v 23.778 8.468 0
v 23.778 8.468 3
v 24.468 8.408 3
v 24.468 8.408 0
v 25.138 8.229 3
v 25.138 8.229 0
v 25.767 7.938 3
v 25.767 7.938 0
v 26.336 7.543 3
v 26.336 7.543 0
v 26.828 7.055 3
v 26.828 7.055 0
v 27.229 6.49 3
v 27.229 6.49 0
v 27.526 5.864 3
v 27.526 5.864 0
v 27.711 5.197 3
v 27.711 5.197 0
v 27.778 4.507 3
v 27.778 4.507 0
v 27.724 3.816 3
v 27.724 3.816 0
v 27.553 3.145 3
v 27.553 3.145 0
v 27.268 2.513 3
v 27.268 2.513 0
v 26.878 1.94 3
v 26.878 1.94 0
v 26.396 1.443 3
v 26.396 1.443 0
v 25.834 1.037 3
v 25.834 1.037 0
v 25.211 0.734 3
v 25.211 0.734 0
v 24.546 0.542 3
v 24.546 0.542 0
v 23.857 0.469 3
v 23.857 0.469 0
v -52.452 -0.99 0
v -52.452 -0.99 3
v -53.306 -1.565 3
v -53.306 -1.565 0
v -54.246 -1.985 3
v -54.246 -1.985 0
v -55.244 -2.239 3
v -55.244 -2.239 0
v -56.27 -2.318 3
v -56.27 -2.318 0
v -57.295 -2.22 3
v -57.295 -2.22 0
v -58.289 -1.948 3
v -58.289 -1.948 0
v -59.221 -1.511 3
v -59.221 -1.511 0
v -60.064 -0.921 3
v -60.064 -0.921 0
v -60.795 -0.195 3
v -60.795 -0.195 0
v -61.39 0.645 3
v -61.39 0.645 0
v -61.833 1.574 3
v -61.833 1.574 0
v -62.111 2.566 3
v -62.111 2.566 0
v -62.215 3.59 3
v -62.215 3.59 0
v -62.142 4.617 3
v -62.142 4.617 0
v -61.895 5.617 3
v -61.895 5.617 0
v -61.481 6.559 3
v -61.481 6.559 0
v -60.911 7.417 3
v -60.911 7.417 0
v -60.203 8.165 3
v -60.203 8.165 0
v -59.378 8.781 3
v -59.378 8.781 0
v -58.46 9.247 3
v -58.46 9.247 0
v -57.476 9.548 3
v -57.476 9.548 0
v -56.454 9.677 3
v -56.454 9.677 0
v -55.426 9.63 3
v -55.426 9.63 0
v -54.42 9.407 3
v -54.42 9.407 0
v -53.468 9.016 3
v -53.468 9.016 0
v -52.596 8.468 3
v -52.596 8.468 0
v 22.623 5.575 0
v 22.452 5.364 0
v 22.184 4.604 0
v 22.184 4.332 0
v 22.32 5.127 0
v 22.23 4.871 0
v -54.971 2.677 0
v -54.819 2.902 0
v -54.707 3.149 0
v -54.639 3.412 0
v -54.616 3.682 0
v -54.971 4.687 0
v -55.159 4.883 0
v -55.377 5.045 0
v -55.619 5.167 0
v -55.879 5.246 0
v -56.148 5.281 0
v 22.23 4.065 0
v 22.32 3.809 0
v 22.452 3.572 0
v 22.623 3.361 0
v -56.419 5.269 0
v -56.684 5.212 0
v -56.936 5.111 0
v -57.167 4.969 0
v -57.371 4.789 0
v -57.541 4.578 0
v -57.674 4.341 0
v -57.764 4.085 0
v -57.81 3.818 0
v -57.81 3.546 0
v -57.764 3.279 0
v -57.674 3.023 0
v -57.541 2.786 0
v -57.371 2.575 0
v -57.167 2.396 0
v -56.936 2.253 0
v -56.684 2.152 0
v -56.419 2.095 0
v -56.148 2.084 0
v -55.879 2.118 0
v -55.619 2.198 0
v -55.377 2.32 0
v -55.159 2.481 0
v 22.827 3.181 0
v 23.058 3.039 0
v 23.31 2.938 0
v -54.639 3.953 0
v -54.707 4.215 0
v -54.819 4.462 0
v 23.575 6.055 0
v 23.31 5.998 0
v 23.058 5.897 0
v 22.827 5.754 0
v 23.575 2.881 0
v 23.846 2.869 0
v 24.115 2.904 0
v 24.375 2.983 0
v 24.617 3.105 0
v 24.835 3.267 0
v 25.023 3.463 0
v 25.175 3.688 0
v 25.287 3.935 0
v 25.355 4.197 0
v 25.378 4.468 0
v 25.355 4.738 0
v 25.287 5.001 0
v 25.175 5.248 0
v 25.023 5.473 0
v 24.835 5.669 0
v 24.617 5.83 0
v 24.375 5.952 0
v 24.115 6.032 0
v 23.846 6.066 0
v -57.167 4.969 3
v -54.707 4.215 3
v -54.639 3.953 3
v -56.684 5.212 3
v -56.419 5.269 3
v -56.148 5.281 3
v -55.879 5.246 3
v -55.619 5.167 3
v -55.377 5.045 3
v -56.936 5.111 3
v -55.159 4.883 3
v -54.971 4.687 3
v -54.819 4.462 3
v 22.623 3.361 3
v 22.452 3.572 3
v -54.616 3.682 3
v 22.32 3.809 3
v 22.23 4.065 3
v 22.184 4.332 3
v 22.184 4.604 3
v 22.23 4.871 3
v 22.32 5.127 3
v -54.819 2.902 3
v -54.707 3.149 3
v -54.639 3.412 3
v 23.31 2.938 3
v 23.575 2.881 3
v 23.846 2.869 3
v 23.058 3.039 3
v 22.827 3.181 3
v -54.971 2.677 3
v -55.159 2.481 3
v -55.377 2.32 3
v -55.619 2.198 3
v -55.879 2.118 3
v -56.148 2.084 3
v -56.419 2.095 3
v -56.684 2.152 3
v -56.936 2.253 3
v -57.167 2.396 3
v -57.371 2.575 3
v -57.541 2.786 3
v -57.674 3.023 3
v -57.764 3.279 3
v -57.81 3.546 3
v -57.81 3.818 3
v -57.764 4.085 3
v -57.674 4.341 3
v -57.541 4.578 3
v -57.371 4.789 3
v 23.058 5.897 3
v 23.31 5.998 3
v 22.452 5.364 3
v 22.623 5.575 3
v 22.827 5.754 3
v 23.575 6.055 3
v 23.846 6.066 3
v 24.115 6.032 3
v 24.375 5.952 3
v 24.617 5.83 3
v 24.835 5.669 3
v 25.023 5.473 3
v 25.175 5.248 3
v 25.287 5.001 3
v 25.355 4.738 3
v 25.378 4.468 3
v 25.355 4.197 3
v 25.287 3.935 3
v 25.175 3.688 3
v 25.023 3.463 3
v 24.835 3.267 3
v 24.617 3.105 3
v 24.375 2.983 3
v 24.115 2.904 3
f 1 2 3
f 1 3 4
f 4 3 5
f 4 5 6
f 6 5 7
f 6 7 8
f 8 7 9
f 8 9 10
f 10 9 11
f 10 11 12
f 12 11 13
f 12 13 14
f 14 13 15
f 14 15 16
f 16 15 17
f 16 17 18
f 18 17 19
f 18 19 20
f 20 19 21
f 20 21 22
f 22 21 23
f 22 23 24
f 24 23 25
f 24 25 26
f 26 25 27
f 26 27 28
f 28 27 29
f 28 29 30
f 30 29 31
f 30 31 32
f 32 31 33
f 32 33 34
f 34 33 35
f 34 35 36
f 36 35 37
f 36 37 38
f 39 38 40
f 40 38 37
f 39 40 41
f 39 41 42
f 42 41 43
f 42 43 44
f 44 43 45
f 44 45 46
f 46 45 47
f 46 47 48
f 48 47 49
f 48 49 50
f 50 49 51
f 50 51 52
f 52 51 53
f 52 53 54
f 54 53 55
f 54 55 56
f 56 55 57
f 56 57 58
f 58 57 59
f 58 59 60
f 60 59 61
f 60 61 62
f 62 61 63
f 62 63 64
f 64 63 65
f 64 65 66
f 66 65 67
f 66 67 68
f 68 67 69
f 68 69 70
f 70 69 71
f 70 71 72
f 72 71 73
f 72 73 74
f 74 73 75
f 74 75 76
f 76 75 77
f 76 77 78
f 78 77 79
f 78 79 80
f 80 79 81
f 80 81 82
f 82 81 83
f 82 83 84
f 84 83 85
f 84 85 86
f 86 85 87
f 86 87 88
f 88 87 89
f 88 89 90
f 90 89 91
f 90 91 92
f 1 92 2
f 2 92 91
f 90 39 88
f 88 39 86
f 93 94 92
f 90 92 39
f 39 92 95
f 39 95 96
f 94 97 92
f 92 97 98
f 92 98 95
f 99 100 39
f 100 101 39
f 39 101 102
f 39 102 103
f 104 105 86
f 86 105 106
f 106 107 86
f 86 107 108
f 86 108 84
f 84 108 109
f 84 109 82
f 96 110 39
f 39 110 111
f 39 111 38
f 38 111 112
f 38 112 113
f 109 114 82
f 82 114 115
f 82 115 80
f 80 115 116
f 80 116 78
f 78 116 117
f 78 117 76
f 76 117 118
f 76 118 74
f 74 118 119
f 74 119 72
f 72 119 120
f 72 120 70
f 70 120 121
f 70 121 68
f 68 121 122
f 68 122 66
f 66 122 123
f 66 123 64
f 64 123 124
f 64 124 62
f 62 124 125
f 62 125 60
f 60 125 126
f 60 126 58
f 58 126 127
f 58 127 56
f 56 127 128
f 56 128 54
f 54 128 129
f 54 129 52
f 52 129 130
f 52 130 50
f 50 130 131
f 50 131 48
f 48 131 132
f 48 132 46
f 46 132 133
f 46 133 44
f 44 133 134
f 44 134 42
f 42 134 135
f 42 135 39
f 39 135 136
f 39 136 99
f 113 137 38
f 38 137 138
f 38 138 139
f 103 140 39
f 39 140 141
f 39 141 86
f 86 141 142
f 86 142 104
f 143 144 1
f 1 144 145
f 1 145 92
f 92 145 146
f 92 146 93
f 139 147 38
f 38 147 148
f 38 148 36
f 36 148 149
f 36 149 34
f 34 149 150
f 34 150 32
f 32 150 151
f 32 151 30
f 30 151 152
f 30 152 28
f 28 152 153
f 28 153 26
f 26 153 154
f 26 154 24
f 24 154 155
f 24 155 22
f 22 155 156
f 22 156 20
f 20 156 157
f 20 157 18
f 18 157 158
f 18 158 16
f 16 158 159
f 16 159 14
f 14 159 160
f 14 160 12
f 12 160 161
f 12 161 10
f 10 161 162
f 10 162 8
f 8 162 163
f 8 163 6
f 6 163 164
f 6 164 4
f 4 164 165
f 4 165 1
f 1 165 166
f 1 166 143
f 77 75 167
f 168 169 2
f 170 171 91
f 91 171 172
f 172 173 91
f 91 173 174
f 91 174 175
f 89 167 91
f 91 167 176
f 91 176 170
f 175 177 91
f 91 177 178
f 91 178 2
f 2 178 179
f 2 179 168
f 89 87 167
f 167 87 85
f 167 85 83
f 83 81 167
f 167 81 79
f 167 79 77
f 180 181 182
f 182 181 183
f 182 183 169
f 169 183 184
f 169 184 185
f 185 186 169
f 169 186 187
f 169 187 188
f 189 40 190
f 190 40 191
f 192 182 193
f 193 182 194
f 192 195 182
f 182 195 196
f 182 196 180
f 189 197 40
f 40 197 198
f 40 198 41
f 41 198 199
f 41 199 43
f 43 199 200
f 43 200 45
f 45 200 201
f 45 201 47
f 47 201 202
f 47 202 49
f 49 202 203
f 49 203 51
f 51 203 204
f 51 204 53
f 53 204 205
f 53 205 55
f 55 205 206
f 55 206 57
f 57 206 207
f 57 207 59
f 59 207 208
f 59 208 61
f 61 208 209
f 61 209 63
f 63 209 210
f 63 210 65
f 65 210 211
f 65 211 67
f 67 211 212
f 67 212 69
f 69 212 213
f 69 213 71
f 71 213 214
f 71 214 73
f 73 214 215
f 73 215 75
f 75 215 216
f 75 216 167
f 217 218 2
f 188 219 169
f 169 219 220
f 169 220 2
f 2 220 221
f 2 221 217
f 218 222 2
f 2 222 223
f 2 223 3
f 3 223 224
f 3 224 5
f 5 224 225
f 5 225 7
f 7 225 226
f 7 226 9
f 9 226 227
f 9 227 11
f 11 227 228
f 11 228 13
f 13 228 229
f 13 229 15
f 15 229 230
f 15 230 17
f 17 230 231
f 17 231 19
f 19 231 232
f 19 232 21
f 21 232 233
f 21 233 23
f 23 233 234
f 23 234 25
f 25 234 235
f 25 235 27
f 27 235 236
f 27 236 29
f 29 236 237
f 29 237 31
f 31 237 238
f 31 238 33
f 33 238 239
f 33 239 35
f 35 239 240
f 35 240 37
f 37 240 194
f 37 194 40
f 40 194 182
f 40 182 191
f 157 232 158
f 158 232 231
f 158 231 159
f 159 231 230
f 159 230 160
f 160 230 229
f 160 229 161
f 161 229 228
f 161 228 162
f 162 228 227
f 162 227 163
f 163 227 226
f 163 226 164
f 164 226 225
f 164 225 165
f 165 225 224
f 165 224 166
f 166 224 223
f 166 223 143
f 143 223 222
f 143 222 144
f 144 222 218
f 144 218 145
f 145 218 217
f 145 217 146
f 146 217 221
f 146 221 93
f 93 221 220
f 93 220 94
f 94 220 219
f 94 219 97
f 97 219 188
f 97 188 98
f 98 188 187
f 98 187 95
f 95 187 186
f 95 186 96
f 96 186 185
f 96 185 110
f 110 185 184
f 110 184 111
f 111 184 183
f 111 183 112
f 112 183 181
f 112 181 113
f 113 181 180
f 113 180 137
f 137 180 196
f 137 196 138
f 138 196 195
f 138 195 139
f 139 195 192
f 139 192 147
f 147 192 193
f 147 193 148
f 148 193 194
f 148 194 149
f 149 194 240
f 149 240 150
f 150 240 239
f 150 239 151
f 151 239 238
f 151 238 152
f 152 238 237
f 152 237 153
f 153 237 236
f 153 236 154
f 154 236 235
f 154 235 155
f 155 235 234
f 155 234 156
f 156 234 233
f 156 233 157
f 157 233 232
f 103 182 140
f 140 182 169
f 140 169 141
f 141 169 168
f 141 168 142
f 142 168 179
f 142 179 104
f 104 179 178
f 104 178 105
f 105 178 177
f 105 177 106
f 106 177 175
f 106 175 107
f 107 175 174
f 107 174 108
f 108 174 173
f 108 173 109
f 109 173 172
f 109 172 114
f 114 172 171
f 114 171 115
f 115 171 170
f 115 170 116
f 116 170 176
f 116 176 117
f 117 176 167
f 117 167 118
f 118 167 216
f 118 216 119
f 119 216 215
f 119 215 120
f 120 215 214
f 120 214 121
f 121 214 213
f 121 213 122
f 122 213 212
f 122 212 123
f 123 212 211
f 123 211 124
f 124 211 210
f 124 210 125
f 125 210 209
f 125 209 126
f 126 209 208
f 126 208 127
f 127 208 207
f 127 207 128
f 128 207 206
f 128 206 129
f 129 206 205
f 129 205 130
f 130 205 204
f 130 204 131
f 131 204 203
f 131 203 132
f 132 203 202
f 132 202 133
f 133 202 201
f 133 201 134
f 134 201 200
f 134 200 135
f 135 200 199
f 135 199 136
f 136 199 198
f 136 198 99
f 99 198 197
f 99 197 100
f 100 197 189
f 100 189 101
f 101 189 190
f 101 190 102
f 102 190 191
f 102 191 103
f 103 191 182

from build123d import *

# Parameters (mm, degrees)
EXTRUDE_1_DEPTH         = 3
SKETCH_2_R              = 1.35
CUT_EXTRUDE_1_DEPTH     = 2.444444444
SKETCH_3_R              = 1.35
CUT_EXTRUDE_2_DEPTH     = 0.555555556
HOLE_WIZARD_2_7_2_7_1_D = 2.7
SKETCH_6_R              = 1.6
CUT_EXTRUDE_3_DEPTH     = 64.035907885


with BuildPart() as part:
    # 草图1 → 凸台-拉伸1 (new body)
    with BuildSketch(Plane.XY.offset(3)):
        with BuildLine():
            Line((23.778016459, 8.467622986), (-52.596358319, 8.467622986))
            ThreePointArc((-52.596358319, 8.467622986), (-62.214907854, 3.590303351), (-52.451603626, -0.990377005))
            Line((-52.451603626, -0.990377005), (23.856567017, 0.468594516))
            ThreePointArc((23.856567017, 0.468594516), (27.777721585, 4.50700022), (23.778016459, 8.467622986))
        make_face()
    extrude(amount=-EXTRUDE_1_DEPTH)

    # 草图2 → 切除-拉伸1 (cut)
    with BuildSketch(Plane.XY.offset(3)):
        with Locations(Location((23.77801746, 4.467622995, 0), (0, 0, 180))):
            Circle(SKETCH_2_R)
    extrude(amount=-CUT_EXTRUDE_1_DEPTH, mode=Mode.SUBTRACT)

    # 草图3 → 切除-拉伸2 (cut)
    with BuildSketch(Plane(origin=(0, 0, 0), x_dir=(-1, 0, 0), z_dir=(0, 0, -1))):
        with Locations(Location((-23.778017455, 4.467823177, 0), (0, 0, 359.991504025))):
            Circle(SKETCH_3_R)
    extrude(amount=-CUT_EXTRUDE_2_DEPTH, mode=Mode.SUBTRACT)

    # Ø2.7 (2.7) 直径孔1 (through all)
    with Locations(Plane.XY.offset(3)):
        with Locations((-56.215609969, 3.682122995)):
            Hole(HOLE_WIZARD_2_7_2_7_1_D / 2)

    # 草图6 → 切除-拉伸3 (cut, through all)
    with BuildSketch(Plane.XY.offset(3)):
        with Locations((-56.215609969, 3.682122995)):
            Circle(SKETCH_6_R)
        with Locations((23.778017455, 4.467823177)):
            Circle(SKETCH_6_R)
    extrude(amount=-CUT_EXTRUDE_3_DEPTH, mode=Mode.SUBTRACT)


solid = part.part
